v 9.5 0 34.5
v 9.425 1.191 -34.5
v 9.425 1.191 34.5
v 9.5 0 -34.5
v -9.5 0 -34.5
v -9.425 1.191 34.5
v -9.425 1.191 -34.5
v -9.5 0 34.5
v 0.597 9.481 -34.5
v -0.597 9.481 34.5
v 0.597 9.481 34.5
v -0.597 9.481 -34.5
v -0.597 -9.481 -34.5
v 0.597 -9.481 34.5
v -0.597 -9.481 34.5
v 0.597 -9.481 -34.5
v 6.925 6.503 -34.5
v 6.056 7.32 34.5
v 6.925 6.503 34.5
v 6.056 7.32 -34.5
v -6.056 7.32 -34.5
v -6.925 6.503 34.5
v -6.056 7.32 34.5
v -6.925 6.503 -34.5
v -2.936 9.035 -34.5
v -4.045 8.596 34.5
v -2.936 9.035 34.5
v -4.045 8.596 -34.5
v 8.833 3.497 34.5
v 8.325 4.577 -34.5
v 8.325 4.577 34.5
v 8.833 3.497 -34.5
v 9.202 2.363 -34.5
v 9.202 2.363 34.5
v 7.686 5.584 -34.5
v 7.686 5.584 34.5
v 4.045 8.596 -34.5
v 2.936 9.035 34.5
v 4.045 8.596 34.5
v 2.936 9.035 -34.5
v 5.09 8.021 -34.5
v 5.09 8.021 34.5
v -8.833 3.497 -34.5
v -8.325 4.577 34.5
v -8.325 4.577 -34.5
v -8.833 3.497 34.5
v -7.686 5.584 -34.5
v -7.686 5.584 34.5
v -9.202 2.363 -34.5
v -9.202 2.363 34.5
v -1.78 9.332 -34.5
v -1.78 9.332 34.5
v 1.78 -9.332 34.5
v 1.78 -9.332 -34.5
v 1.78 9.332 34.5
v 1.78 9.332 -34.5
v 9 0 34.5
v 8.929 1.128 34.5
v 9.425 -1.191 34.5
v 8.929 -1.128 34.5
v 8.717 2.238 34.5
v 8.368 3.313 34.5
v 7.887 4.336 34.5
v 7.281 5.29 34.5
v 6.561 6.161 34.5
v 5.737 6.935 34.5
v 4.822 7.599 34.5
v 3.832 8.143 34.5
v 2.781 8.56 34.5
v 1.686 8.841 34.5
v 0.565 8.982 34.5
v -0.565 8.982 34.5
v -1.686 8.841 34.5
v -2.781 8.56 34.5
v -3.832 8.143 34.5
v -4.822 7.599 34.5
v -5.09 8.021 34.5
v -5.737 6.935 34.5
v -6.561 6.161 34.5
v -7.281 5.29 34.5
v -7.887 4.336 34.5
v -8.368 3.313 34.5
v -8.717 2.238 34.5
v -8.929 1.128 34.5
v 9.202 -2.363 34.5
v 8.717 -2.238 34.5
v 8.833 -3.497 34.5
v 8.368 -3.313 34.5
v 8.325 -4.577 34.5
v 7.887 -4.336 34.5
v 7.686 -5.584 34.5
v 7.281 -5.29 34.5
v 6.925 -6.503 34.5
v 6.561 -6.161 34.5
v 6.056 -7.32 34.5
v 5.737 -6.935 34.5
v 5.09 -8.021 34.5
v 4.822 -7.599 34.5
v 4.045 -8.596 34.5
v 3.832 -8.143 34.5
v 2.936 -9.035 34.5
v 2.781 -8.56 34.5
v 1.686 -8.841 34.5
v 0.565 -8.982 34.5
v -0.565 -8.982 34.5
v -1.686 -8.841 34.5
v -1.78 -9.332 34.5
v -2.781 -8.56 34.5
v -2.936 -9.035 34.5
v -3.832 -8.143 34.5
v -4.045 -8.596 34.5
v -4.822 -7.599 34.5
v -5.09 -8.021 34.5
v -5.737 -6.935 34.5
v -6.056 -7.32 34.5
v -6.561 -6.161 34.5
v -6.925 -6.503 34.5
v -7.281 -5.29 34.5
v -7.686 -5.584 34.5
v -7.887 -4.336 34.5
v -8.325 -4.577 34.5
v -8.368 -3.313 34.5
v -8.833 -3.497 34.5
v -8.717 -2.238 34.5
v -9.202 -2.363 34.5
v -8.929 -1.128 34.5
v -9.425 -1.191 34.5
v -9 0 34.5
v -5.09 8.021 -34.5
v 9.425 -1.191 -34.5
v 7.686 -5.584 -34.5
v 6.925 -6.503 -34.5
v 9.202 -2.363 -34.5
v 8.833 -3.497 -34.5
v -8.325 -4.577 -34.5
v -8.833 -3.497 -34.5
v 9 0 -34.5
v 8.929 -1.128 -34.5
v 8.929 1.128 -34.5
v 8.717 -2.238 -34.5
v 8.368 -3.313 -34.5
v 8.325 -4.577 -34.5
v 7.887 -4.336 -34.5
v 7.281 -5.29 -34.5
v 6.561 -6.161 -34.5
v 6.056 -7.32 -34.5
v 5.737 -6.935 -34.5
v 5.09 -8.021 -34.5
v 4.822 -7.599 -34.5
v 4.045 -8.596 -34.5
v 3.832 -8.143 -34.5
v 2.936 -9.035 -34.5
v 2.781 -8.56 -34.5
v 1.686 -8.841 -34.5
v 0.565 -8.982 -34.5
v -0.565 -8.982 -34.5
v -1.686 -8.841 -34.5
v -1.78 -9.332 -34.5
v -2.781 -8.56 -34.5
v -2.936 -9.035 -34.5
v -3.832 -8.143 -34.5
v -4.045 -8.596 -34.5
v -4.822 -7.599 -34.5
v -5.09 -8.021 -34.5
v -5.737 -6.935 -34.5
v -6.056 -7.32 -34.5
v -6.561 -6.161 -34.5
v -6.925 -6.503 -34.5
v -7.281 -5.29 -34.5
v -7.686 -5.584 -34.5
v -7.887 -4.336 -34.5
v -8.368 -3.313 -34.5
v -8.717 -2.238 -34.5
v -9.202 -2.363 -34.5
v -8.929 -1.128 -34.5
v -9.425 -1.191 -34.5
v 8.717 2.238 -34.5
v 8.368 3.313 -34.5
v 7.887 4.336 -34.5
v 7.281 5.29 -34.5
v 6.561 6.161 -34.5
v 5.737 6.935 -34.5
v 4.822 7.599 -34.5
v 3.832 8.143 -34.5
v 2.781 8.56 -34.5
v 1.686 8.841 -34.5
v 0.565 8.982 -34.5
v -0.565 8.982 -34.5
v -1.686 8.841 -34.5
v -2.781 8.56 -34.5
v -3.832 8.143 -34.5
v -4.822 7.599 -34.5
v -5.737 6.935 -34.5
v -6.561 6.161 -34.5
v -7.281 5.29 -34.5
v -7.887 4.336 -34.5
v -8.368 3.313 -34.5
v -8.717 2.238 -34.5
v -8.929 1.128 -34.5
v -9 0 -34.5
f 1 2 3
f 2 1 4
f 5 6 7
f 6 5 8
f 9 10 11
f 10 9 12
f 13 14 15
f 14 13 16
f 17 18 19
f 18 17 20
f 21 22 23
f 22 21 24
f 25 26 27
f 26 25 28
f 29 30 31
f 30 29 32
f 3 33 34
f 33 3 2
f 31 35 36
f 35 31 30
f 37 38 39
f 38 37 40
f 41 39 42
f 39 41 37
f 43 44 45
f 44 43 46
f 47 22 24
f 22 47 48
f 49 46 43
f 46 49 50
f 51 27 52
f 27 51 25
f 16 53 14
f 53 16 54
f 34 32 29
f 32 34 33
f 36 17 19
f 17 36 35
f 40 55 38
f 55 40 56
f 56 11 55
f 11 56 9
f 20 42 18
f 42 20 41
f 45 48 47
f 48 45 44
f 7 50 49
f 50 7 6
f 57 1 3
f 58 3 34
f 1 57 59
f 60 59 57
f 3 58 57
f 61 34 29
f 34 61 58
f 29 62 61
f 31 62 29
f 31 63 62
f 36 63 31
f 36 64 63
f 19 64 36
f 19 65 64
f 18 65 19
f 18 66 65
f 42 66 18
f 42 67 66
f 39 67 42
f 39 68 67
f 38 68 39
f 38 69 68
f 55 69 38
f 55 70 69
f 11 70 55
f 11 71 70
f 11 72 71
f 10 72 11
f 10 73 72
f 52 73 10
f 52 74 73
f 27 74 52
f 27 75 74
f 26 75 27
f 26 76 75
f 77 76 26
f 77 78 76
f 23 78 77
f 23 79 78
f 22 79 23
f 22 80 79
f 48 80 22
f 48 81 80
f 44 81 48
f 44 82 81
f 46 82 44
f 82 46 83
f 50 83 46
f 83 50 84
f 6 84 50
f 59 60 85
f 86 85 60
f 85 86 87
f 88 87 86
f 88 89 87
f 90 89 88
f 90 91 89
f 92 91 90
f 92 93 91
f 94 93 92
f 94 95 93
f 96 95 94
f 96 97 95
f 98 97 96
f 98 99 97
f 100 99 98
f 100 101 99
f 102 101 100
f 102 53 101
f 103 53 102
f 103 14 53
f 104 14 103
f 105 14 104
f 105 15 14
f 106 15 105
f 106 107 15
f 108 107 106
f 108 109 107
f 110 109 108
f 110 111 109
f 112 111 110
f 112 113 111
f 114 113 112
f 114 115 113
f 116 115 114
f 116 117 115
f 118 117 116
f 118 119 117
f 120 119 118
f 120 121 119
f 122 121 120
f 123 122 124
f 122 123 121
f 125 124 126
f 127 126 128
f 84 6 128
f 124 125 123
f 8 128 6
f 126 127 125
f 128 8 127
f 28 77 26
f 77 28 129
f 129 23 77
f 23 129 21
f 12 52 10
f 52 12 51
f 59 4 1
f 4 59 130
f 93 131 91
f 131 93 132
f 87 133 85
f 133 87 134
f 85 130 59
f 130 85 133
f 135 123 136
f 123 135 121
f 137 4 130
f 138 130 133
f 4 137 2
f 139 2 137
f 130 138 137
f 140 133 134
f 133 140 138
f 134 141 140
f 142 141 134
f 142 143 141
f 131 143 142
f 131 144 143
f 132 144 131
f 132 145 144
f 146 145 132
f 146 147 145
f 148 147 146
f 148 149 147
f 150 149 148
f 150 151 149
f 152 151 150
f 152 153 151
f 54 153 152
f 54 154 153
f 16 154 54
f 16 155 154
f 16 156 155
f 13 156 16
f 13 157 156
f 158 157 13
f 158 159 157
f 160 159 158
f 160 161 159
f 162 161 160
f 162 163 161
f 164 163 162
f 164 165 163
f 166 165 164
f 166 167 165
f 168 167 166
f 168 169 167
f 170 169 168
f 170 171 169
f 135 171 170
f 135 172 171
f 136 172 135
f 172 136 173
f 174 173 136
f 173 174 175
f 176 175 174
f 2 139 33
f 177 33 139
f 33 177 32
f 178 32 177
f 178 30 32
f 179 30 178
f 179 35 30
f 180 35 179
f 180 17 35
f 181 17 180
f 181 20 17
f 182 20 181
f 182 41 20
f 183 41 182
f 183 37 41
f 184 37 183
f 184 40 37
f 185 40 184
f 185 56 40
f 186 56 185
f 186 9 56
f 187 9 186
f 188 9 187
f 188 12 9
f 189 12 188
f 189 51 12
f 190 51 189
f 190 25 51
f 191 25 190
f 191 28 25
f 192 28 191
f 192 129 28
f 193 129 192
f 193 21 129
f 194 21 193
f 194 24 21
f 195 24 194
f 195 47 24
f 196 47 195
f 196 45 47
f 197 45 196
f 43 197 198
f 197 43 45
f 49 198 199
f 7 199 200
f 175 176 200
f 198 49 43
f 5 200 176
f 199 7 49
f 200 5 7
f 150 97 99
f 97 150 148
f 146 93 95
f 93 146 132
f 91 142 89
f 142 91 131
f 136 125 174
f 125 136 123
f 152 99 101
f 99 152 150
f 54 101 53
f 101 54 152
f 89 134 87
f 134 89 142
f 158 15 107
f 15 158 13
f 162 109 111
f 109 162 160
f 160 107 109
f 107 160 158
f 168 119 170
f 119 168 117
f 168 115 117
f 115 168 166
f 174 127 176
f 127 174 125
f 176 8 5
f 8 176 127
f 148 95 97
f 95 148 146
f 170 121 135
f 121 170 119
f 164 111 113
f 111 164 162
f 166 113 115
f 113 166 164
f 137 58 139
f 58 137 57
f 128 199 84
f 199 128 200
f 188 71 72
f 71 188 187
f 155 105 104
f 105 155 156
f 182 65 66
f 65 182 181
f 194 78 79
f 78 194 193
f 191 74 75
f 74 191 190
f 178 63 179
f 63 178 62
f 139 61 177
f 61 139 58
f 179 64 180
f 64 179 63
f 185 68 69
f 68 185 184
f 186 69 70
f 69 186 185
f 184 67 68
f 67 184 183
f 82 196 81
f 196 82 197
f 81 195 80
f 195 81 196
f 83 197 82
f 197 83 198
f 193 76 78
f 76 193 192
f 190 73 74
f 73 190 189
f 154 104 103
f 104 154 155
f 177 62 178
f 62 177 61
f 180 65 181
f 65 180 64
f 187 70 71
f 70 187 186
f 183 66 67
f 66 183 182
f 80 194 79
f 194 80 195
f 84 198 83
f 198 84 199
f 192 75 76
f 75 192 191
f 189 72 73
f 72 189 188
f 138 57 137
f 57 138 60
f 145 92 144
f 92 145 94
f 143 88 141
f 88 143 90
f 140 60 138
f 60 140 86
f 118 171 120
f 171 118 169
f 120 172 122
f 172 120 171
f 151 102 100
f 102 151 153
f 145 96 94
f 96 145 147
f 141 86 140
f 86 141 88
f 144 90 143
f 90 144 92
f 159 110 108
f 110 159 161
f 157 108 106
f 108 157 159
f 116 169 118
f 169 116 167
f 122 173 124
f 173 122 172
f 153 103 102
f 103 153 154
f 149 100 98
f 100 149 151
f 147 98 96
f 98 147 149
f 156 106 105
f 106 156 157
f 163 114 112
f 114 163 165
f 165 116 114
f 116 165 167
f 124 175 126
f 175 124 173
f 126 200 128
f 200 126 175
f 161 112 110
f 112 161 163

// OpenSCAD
$fn = 50;


difference() {
	union() {
		translate(v = [0, 0, -34.5000000000]) {
			cylinder(h = 69, r = 9.5000000000);
		}
	}
	union() {
		translate(v = [0, 0, -100.0000000000]) {
			cylinder(h = 200, r = 9);
		}
	}
}
